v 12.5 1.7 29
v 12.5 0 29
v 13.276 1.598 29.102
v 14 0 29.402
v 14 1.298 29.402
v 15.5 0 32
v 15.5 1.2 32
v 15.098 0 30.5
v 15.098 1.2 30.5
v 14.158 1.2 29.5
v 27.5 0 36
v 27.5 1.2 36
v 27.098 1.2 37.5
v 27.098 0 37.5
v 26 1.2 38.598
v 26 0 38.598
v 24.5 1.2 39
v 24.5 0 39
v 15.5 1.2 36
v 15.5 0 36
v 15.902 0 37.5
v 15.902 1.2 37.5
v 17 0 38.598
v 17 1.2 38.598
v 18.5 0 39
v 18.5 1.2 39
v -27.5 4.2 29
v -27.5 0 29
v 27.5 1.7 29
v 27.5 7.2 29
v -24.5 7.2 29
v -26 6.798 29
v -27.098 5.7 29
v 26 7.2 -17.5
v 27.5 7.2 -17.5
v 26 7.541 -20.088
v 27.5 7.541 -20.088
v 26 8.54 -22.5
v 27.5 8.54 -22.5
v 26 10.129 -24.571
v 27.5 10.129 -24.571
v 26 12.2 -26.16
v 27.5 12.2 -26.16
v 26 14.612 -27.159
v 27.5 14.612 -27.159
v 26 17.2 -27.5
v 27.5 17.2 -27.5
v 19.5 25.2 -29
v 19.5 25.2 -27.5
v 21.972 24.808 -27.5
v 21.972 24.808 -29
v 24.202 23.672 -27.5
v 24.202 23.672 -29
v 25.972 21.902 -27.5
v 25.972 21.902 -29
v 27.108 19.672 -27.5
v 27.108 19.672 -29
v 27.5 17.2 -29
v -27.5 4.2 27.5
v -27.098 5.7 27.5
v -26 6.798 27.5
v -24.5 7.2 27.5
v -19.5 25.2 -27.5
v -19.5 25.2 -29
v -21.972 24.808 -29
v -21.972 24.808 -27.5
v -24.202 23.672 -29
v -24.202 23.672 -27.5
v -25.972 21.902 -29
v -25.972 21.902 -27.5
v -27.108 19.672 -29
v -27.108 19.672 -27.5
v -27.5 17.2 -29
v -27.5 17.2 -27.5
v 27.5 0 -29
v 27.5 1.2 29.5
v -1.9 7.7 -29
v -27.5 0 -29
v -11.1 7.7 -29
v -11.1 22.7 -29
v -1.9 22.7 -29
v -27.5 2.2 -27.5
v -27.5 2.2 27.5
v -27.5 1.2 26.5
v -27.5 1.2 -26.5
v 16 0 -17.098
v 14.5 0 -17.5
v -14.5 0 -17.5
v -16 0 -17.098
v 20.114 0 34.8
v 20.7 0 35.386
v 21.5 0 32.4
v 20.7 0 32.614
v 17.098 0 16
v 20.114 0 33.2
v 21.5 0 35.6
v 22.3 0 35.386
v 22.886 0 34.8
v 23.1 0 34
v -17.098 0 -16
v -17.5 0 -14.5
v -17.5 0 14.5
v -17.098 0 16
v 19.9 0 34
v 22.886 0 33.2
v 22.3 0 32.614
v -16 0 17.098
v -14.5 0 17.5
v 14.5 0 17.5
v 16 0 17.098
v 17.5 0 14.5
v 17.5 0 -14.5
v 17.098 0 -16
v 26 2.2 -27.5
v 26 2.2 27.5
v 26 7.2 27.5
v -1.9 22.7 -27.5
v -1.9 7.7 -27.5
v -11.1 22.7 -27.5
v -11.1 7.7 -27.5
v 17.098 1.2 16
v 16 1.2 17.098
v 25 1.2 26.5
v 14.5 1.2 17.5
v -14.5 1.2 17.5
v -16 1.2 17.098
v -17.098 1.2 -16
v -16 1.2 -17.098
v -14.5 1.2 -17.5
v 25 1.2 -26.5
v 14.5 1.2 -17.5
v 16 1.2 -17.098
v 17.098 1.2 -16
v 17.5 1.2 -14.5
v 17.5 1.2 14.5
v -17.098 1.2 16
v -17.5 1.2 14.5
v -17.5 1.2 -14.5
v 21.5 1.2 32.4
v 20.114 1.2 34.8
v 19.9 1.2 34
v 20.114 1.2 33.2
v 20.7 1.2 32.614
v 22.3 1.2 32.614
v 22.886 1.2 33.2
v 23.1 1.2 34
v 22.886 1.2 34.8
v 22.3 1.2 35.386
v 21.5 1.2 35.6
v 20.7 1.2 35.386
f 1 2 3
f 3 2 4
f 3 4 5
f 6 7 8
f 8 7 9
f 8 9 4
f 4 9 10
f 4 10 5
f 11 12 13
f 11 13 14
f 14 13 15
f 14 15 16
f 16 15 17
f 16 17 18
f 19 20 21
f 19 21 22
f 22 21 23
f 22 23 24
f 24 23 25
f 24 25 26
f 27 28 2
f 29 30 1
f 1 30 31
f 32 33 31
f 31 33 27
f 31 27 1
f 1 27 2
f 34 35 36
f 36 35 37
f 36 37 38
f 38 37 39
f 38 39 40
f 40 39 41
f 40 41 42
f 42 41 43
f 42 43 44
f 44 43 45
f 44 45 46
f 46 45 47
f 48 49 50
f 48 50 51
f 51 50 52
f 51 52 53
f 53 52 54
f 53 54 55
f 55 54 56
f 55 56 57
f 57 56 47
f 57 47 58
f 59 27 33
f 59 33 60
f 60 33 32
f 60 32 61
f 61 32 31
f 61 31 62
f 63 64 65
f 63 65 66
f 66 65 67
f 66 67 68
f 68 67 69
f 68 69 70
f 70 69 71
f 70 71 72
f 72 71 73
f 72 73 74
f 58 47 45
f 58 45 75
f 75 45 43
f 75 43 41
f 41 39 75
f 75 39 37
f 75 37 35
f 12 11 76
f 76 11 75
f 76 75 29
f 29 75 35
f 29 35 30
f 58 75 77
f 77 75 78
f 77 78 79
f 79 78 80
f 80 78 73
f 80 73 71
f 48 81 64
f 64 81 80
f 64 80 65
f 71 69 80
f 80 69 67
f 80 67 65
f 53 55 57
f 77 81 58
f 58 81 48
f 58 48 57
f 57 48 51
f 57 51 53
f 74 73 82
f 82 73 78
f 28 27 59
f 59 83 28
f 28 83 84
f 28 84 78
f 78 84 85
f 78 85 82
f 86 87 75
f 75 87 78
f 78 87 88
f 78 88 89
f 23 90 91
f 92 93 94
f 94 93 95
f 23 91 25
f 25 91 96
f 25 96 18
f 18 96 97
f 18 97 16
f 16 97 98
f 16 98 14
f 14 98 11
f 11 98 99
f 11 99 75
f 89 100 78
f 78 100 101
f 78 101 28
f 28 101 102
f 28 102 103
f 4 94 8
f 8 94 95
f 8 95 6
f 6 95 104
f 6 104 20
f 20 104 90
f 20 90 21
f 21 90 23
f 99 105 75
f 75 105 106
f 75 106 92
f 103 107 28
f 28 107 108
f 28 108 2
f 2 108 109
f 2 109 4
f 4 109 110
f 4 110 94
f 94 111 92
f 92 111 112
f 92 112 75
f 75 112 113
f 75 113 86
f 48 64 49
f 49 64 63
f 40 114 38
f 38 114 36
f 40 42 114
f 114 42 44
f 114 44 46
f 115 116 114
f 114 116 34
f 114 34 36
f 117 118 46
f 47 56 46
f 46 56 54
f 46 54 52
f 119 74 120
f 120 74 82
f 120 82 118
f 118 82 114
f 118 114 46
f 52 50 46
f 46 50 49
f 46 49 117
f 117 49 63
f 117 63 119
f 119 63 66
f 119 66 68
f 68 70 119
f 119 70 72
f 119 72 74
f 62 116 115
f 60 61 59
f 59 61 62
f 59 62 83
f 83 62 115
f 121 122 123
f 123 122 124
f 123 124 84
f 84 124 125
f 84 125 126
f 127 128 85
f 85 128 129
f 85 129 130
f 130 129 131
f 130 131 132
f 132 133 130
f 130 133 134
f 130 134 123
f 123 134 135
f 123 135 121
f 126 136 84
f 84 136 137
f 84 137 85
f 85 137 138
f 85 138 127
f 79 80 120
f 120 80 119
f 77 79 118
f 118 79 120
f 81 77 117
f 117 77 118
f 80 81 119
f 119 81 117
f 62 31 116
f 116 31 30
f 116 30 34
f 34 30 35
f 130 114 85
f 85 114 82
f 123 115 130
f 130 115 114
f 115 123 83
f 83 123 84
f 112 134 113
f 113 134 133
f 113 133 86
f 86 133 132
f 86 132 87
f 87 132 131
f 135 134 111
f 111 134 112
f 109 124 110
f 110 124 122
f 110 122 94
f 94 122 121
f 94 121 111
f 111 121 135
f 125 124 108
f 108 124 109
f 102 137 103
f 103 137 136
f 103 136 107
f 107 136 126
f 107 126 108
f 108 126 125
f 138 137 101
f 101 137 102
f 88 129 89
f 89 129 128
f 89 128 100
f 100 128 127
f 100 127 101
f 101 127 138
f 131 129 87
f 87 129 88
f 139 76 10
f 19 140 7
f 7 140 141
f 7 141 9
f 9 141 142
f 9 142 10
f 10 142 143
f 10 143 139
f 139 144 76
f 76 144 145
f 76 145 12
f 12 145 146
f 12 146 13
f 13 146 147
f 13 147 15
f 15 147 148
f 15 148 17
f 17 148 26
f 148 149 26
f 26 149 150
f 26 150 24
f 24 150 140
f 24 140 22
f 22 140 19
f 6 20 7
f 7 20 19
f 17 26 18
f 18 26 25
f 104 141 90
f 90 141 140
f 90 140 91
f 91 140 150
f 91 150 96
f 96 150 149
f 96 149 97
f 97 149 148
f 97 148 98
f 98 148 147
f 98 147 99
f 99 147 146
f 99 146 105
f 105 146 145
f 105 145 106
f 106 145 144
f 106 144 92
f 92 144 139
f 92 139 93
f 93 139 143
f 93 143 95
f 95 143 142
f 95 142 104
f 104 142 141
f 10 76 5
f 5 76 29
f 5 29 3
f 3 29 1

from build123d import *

# Parameters (mm, degrees)
ESBO_O1_W                = 55
ESBO_O1_H                = 58
BASE_DEPTH               = 1.2
ESBO_O2_W                = 55
ESBO_O2_H                = 58
ESBO_O2_W_2              = 52
ESBO_O2_H_2              = 55
PAREDES_DEPTH            = 24
ESBO_O3_W                = 4.971937724
ESBO_O3_H                = 55
CORTE_EXTRUS_O1_DEPTH    = 24
ESBO_O4_W                = 9.2
ESBO_O4_H                = 15
ENCAIXE_CHAVE_DEPTH      = 17
ESBO_O5_W                = 1.5
ESBO_O5_H                = 18
CORTE_EXTRUS_O3_DEPTH    = 68.089790579
FILETE1_R                = 8
FILETE2_R                = 3
CHANFRO1_SIZE            = 1
CORTE_EXTRUS_O5_DEPTH    = 17
ESBO_O8_W                = 55
ESBO_O8_H                = 18
CORTE_EXTRUS_O6_DEPTH    = 17
FILETE6_R                = 8
FILETE7_R                = 10
ESBO_O9_W                = 12
ESBO_O9_H                = 1.2
RESSALTO_EXTRUS_O3_DEPTH = 10
ESBO_O10_R               = 1.6
CORTE_EXTRUS_O7_DEPTH    = 10
FILETE8_R                = 3
FILETE9_R                = 3
FILETE10_R               = 3
CHANFRO2_SIZE            = 0.5


with BuildPart() as part:
    # Esboço1 → Base (new body)
    with BuildSketch(Plane(origin=(0, 0, 0), x_dir=(1, 0, 0), z_dir=(0, 1, 0))):
        Rectangle(ESBO_O1_W, ESBO_O1_H)
    extrude(amount=BASE_DEPTH)

    # Esboço2 → Paredes (add)
    with BuildSketch(Plane(origin=(0, 1.2, 0), x_dir=(1, 0, 0), z_dir=(0, 1, 0))):
        Rectangle(ESBO_O2_W, ESBO_O2_H)
        Rectangle(ESBO_O2_W_2, ESBO_O2_H_2, mode=Mode.SUBTRACT)
    extrude(amount=PAREDES_DEPTH)

    # Esboço3 → Corte-extrusão1 (cut)
    with BuildSketch(Plane(origin=(0, 25.2, 0), x_dir=(1, 0, 0), z_dir=(0, 1, 0))):
        with Locations((-27.5, 0)):
            Rectangle(ESBO_O3_W, ESBO_O3_H)
    extrude(amount=-CORTE_EXTRUS_O1_DEPTH, mode=Mode.SUBTRACT)

    # Esboço4 → Encaixe chave (cut)
    with BuildSketch(Plane(origin=(0, 0, -29), x_dir=(-1, 0, 0), z_dir=(0, 0, -1))):
        with Locations((6.5, 15.2)):
            Rectangle(ESBO_O4_W, ESBO_O4_H)
    extrude(amount=-ENCAIXE_CHAVE_DEPTH, mode=Mode.SUBTRACT)

    # Esboço5 → Corte-extrusão3 (cut, through all)
    with BuildSketch(Plane.ZY.offset(27.5)):
        with Locations((28.25, 16.2)):
            Rectangle(ESBO_O5_W, ESBO_O5_H)
    extrude(amount=-CORTE_EXTRUS_O3_DEPTH, mode=Mode.SUBTRACT)

    # Filete1
    filete1_edges = [part.edges().sort_by_distance(p)[0] for p in [
        (-27.5, 25.2, -28.25),
    ]]
    fillet(filete1_edges, radius=FILETE1_R)

    # Filete2
    filete2_edges = [part.edges().sort_by_distance(p)[0] for p in [
        (-27.5, 7.2, 28.25),
    ]]
    fillet(filete2_edges, radius=FILETE2_R)

    # Chanfro1
    chanfro1_edges = [part.edges().sort_by_distance(p)[0] for p in [
        (26, 1.2, 0),
        (-0.75, 1.2, -27.5),
        (-0.75, 1.2, 27.5),
    ]]
    chamfer(chanfro1_edges, length=CHANFRO1_SIZE)

    # Esboço7 → Corte-extrusão5 (cut)
    with BuildSketch(Plane(origin=(0, 1.2, 0), x_dir=(1, 0, 0), z_dir=(0, 1, 0))):
        with BuildLine():
            Line((-14.5, -17.5), (14.5, -17.5))
            ThreePointArc((14.5, -17.5), (16.621320344, -16.621320344), (17.5, -14.5))
            Line((17.5, -14.5), (17.5, 14.5))
            ThreePointArc((17.5, 14.5), (16.621320344, 16.621320344), (14.5, 17.5))
            Line((14.5, 17.5), (-14.5, 17.5))
            ThreePointArc((-14.5, 17.5), (-16.621320344, 16.621320344), (-17.5, 14.5))
            Line((-17.5, 14.5), (-17.5, -14.5))
            ThreePointArc((-17.5, -14.5), (-16.621320344, -16.621320344), (-14.5, -17.5))
        make_face()
    extrude(amount=-CORTE_EXTRUS_O5_DEPTH, mode=Mode.SUBTRACT)

    # Esboço8 → Corte-extrusão6 (cut)
    with BuildSketch(Plane(origin=(27.5, 0, 0), x_dir=(0, 0, -1), z_dir=(1, 0, 0))):
        with Locations((0, 16.2)):
            Rectangle(ESBO_O8_W, ESBO_O8_H)
    extrude(amount=-CORTE_EXTRUS_O6_DEPTH, mode=Mode.SUBTRACT)

    # Filete6
    filete6_edges = [part.edges().sort_by_distance(p)[0] for p in [
        (27.5, 25.2, -28.25),
    ]]
    fillet(filete6_edges, radius=FILETE6_R)

    # Filete7
    filete7_edges = [part.edges().sort_by_distance(p)[0] for p in [
        (26.75, 7.2, -27.5),
    ]]
    fillet(filete7_edges, radius=FILETE7_R)

    # Esboço9 → Ressalto-extrusão3 (add)
    with BuildSketch(Plane.XY.offset(29)):
        with Locations((21.5, 0.6)):
            Rectangle(ESBO_O9_W, ESBO_O9_H)
    extrude(amount=RESSALTO_EXTRUS_O3_DEPTH)

    # Esboço10 → Corte-extrusão7 (cut)
    with BuildSketch(Plane(origin=(0, 1.2, 0), x_dir=(1, 0, 0), z_dir=(0, 1, 0))):
        with Locations(Location((21.5, -34, 0), (0, 0, 180))):
            Circle(ESBO_O10_R)
    extrude(amount=-CORTE_EXTRUS_O7_DEPTH, mode=Mode.SUBTRACT)

    # Filete8
    filete8_edges = [part.edges().sort_by_distance(p)[0] for p in [
        (15.5, 0.6, 39),
    ]]
    fillet(filete8_edges, radius=FILETE8_R)

    # Filete9
    filete9_edges = [part.edges().sort_by_distance(p)[0] for p in [
        (27.5, 0.6, 39),
    ]]
    fillet(filete9_edges, radius=FILETE9_R)

    # Filete10
    filete10_edges = [part.edges().sort_by_distance(p)[0] for p in [
        (15.5, 0.6, 29),
    ]]
    fillet(filete10_edges, radius=FILETE10_R)

    # Chanfro2
    chanfro2_edges = [part.edges().sort_by_distance(p)[0] for p in [
        (20, 1.2, 29),
    ]]
    chamfer(chanfro2_edges, length=CHANFRO2_SIZE)


solid = part.part
